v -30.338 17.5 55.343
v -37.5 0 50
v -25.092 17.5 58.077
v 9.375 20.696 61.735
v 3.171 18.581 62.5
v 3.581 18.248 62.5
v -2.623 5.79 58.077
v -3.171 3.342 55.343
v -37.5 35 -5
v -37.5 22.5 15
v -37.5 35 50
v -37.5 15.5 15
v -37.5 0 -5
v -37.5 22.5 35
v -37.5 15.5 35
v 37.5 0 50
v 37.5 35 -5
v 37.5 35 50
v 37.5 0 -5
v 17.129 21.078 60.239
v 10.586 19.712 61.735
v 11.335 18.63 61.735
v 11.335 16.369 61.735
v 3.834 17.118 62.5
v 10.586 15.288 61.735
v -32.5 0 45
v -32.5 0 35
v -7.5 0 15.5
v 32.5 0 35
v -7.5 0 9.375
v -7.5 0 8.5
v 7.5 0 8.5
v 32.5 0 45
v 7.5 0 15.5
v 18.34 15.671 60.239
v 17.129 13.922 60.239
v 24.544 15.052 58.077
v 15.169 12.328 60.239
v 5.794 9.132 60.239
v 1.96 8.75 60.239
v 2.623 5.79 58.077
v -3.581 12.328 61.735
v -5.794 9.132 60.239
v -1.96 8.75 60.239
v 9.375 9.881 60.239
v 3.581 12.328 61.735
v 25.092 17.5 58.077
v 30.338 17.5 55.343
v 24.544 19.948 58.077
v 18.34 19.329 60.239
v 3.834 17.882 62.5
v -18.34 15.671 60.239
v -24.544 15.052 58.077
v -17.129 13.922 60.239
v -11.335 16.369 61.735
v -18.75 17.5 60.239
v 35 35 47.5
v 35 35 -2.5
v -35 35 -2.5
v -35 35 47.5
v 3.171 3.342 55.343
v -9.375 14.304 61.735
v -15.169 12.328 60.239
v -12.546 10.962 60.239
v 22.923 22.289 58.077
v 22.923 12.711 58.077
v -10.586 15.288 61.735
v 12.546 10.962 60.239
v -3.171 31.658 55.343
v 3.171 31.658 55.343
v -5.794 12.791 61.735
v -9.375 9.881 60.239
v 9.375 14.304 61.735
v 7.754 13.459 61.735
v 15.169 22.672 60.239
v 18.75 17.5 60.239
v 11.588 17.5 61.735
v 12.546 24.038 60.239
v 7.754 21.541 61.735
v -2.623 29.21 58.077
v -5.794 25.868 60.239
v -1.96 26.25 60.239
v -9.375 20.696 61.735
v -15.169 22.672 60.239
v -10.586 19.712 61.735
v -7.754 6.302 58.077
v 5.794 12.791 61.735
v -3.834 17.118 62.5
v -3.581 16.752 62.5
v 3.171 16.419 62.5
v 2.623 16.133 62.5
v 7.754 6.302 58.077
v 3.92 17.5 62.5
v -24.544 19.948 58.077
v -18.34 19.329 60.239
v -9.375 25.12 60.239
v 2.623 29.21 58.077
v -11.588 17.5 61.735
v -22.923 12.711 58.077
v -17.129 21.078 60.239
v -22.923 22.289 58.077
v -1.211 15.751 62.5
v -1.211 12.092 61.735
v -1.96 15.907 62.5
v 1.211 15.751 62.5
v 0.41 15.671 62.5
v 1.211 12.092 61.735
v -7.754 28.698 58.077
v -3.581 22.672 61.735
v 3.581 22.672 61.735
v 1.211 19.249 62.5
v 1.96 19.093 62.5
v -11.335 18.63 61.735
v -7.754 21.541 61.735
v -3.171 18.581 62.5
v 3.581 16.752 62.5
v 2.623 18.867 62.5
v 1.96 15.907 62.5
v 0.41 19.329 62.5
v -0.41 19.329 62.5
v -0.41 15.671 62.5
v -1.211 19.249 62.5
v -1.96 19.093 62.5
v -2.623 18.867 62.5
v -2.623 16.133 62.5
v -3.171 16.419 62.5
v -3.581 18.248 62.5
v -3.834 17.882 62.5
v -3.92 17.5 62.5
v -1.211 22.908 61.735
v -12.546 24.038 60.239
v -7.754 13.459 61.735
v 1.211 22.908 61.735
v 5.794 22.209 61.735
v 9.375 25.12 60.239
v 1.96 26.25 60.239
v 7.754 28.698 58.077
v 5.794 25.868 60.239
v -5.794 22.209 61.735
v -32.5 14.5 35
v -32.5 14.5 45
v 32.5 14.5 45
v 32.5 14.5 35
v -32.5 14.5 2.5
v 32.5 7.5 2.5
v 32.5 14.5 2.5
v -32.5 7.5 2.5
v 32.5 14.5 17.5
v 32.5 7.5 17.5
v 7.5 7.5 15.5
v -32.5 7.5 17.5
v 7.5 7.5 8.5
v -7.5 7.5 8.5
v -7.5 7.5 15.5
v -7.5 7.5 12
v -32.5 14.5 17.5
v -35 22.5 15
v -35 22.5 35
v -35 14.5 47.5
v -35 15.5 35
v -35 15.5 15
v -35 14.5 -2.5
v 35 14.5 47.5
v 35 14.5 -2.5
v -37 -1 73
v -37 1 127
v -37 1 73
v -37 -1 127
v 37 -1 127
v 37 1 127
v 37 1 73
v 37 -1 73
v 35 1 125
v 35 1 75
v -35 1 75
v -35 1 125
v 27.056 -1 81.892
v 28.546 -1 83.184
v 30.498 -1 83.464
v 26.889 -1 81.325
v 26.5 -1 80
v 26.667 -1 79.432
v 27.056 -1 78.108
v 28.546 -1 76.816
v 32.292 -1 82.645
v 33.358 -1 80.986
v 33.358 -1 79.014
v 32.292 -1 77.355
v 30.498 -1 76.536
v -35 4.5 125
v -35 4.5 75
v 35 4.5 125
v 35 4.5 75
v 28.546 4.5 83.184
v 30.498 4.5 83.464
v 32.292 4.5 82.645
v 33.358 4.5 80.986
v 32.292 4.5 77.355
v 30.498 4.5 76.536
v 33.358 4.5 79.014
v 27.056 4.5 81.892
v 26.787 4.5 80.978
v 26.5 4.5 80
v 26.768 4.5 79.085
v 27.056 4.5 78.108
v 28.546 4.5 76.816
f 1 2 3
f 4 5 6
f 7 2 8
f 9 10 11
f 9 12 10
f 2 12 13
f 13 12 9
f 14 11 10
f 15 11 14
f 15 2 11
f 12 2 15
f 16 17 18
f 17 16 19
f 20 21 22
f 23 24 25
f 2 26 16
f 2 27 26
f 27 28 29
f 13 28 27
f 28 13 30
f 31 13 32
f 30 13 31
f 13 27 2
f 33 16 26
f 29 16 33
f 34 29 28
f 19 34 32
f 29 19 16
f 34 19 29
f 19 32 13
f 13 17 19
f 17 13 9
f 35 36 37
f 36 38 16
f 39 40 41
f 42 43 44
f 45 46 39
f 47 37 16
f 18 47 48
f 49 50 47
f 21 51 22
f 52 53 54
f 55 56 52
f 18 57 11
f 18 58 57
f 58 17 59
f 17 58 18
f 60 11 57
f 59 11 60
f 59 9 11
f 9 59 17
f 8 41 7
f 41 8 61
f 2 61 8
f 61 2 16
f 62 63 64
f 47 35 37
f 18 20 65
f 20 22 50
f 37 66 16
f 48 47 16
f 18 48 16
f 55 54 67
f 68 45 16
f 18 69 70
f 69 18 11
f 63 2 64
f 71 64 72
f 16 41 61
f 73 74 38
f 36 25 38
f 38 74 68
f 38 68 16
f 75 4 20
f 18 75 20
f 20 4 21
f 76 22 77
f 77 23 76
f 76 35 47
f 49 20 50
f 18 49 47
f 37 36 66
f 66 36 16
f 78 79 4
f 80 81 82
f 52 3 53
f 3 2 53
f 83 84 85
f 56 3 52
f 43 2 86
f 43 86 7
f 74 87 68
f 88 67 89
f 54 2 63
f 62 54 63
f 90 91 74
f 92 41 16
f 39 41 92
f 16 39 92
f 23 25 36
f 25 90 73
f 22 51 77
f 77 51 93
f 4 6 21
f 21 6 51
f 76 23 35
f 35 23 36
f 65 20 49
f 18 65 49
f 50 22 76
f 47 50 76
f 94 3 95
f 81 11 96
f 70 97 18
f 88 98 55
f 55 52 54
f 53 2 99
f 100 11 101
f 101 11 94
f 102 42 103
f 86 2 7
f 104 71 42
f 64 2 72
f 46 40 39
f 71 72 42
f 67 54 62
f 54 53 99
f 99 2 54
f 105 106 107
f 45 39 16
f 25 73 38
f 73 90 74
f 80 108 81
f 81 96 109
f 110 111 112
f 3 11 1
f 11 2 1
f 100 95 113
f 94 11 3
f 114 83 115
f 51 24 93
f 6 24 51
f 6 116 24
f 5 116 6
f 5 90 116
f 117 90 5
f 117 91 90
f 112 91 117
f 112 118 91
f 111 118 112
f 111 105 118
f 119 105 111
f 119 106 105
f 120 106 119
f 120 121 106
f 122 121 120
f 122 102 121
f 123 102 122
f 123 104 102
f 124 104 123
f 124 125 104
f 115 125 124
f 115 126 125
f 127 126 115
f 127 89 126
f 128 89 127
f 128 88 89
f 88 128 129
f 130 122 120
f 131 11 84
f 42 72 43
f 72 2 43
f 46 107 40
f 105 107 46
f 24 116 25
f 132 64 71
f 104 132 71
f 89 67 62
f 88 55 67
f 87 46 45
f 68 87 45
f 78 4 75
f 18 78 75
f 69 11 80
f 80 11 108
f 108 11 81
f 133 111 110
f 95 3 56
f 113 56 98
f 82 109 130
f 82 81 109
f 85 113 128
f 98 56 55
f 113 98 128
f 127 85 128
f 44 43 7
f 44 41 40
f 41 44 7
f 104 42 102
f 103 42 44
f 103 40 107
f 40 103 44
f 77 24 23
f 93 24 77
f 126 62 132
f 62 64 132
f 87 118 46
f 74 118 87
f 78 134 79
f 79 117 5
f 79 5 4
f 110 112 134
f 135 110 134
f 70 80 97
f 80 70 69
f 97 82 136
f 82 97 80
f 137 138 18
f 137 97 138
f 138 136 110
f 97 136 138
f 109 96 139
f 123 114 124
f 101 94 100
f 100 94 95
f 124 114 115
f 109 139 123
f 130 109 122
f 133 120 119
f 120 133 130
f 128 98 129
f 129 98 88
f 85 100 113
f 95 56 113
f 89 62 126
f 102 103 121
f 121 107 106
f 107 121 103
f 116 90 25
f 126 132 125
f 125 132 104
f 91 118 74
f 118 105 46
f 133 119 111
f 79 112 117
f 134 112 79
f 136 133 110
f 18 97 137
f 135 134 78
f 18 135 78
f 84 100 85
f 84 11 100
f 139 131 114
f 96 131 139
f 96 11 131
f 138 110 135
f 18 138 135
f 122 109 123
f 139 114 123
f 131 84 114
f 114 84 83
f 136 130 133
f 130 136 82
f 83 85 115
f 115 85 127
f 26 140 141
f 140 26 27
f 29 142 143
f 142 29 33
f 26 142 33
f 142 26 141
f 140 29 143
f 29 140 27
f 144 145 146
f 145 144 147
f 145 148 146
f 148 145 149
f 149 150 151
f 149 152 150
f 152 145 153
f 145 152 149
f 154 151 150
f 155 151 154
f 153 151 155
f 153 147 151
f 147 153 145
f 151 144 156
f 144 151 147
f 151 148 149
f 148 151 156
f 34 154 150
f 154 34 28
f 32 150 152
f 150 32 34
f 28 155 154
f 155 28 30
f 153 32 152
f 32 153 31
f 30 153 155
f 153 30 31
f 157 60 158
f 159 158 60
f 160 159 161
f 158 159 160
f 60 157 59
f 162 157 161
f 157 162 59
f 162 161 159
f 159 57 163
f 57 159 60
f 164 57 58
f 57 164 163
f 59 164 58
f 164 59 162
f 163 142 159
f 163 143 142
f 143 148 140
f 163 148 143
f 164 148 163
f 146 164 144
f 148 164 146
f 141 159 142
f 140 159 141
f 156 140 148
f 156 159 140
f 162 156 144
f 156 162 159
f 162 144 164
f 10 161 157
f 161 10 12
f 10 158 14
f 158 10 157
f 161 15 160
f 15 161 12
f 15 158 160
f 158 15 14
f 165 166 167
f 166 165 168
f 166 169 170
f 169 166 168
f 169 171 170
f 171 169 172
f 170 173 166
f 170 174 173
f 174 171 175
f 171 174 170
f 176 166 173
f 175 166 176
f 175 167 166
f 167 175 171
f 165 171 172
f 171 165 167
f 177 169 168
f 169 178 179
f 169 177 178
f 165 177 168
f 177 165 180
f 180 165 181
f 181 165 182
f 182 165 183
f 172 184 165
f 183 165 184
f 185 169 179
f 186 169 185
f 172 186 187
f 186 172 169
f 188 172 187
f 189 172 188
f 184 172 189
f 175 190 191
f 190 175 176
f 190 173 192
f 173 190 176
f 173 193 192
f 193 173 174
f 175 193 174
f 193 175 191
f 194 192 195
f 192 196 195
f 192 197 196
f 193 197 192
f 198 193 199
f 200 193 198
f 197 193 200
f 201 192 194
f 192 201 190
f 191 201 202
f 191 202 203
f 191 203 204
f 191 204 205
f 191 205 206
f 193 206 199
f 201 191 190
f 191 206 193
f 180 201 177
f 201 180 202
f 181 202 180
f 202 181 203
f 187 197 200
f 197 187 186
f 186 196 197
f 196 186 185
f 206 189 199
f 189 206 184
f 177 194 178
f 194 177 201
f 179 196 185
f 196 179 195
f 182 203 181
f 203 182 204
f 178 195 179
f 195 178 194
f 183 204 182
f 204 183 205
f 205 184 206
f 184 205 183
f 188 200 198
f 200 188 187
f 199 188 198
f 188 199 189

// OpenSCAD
// Tails In A Box Model
// 2017 CC-0

// Body
translate([0,35/2,0]){
	difference(){
	hull(){
		translate([0,0,45]){
			resize([75,35,35])sphere(75/2);
		}
		translate([0,0,45/2]){
			resize([75,35,55])cube(75,center=true);
		}
	}
	
	translate([65/2,-20,35])rotate([90,0,180]){
	linear_extrude(height=20)square([65,10]);
	}
	
	translate([65/2,-10,2.5])rotate([90,0,180]){
	linear_extrude(height=20)square([65,15]);
	}
	
	translate([15/2,-20,8.5])rotate([90,0,180]){
	linear_extrude(height=20)square([15,7]);
	}
	
	translate([0,7.5,45/2]){
		resize([70,21,50])cube(75,center=true);
	}
	
	translate([-30,5,15])rotate([0,0,180]){
	linear_extrude(height=20)square([15,7]);
	}
	
	}
}

// Lid
translate([0,0,100]){
	difference(){
	union(){
		resize([74,2,54])cube(75,center=true);
		translate([0,2.5,0]){
			resize([70,4,50])cube(75,center=true);
		}
	}
	translate([30,-10,-20])rotate([90,0,180])cylinder(h=30, r=3.5);
	}
}
